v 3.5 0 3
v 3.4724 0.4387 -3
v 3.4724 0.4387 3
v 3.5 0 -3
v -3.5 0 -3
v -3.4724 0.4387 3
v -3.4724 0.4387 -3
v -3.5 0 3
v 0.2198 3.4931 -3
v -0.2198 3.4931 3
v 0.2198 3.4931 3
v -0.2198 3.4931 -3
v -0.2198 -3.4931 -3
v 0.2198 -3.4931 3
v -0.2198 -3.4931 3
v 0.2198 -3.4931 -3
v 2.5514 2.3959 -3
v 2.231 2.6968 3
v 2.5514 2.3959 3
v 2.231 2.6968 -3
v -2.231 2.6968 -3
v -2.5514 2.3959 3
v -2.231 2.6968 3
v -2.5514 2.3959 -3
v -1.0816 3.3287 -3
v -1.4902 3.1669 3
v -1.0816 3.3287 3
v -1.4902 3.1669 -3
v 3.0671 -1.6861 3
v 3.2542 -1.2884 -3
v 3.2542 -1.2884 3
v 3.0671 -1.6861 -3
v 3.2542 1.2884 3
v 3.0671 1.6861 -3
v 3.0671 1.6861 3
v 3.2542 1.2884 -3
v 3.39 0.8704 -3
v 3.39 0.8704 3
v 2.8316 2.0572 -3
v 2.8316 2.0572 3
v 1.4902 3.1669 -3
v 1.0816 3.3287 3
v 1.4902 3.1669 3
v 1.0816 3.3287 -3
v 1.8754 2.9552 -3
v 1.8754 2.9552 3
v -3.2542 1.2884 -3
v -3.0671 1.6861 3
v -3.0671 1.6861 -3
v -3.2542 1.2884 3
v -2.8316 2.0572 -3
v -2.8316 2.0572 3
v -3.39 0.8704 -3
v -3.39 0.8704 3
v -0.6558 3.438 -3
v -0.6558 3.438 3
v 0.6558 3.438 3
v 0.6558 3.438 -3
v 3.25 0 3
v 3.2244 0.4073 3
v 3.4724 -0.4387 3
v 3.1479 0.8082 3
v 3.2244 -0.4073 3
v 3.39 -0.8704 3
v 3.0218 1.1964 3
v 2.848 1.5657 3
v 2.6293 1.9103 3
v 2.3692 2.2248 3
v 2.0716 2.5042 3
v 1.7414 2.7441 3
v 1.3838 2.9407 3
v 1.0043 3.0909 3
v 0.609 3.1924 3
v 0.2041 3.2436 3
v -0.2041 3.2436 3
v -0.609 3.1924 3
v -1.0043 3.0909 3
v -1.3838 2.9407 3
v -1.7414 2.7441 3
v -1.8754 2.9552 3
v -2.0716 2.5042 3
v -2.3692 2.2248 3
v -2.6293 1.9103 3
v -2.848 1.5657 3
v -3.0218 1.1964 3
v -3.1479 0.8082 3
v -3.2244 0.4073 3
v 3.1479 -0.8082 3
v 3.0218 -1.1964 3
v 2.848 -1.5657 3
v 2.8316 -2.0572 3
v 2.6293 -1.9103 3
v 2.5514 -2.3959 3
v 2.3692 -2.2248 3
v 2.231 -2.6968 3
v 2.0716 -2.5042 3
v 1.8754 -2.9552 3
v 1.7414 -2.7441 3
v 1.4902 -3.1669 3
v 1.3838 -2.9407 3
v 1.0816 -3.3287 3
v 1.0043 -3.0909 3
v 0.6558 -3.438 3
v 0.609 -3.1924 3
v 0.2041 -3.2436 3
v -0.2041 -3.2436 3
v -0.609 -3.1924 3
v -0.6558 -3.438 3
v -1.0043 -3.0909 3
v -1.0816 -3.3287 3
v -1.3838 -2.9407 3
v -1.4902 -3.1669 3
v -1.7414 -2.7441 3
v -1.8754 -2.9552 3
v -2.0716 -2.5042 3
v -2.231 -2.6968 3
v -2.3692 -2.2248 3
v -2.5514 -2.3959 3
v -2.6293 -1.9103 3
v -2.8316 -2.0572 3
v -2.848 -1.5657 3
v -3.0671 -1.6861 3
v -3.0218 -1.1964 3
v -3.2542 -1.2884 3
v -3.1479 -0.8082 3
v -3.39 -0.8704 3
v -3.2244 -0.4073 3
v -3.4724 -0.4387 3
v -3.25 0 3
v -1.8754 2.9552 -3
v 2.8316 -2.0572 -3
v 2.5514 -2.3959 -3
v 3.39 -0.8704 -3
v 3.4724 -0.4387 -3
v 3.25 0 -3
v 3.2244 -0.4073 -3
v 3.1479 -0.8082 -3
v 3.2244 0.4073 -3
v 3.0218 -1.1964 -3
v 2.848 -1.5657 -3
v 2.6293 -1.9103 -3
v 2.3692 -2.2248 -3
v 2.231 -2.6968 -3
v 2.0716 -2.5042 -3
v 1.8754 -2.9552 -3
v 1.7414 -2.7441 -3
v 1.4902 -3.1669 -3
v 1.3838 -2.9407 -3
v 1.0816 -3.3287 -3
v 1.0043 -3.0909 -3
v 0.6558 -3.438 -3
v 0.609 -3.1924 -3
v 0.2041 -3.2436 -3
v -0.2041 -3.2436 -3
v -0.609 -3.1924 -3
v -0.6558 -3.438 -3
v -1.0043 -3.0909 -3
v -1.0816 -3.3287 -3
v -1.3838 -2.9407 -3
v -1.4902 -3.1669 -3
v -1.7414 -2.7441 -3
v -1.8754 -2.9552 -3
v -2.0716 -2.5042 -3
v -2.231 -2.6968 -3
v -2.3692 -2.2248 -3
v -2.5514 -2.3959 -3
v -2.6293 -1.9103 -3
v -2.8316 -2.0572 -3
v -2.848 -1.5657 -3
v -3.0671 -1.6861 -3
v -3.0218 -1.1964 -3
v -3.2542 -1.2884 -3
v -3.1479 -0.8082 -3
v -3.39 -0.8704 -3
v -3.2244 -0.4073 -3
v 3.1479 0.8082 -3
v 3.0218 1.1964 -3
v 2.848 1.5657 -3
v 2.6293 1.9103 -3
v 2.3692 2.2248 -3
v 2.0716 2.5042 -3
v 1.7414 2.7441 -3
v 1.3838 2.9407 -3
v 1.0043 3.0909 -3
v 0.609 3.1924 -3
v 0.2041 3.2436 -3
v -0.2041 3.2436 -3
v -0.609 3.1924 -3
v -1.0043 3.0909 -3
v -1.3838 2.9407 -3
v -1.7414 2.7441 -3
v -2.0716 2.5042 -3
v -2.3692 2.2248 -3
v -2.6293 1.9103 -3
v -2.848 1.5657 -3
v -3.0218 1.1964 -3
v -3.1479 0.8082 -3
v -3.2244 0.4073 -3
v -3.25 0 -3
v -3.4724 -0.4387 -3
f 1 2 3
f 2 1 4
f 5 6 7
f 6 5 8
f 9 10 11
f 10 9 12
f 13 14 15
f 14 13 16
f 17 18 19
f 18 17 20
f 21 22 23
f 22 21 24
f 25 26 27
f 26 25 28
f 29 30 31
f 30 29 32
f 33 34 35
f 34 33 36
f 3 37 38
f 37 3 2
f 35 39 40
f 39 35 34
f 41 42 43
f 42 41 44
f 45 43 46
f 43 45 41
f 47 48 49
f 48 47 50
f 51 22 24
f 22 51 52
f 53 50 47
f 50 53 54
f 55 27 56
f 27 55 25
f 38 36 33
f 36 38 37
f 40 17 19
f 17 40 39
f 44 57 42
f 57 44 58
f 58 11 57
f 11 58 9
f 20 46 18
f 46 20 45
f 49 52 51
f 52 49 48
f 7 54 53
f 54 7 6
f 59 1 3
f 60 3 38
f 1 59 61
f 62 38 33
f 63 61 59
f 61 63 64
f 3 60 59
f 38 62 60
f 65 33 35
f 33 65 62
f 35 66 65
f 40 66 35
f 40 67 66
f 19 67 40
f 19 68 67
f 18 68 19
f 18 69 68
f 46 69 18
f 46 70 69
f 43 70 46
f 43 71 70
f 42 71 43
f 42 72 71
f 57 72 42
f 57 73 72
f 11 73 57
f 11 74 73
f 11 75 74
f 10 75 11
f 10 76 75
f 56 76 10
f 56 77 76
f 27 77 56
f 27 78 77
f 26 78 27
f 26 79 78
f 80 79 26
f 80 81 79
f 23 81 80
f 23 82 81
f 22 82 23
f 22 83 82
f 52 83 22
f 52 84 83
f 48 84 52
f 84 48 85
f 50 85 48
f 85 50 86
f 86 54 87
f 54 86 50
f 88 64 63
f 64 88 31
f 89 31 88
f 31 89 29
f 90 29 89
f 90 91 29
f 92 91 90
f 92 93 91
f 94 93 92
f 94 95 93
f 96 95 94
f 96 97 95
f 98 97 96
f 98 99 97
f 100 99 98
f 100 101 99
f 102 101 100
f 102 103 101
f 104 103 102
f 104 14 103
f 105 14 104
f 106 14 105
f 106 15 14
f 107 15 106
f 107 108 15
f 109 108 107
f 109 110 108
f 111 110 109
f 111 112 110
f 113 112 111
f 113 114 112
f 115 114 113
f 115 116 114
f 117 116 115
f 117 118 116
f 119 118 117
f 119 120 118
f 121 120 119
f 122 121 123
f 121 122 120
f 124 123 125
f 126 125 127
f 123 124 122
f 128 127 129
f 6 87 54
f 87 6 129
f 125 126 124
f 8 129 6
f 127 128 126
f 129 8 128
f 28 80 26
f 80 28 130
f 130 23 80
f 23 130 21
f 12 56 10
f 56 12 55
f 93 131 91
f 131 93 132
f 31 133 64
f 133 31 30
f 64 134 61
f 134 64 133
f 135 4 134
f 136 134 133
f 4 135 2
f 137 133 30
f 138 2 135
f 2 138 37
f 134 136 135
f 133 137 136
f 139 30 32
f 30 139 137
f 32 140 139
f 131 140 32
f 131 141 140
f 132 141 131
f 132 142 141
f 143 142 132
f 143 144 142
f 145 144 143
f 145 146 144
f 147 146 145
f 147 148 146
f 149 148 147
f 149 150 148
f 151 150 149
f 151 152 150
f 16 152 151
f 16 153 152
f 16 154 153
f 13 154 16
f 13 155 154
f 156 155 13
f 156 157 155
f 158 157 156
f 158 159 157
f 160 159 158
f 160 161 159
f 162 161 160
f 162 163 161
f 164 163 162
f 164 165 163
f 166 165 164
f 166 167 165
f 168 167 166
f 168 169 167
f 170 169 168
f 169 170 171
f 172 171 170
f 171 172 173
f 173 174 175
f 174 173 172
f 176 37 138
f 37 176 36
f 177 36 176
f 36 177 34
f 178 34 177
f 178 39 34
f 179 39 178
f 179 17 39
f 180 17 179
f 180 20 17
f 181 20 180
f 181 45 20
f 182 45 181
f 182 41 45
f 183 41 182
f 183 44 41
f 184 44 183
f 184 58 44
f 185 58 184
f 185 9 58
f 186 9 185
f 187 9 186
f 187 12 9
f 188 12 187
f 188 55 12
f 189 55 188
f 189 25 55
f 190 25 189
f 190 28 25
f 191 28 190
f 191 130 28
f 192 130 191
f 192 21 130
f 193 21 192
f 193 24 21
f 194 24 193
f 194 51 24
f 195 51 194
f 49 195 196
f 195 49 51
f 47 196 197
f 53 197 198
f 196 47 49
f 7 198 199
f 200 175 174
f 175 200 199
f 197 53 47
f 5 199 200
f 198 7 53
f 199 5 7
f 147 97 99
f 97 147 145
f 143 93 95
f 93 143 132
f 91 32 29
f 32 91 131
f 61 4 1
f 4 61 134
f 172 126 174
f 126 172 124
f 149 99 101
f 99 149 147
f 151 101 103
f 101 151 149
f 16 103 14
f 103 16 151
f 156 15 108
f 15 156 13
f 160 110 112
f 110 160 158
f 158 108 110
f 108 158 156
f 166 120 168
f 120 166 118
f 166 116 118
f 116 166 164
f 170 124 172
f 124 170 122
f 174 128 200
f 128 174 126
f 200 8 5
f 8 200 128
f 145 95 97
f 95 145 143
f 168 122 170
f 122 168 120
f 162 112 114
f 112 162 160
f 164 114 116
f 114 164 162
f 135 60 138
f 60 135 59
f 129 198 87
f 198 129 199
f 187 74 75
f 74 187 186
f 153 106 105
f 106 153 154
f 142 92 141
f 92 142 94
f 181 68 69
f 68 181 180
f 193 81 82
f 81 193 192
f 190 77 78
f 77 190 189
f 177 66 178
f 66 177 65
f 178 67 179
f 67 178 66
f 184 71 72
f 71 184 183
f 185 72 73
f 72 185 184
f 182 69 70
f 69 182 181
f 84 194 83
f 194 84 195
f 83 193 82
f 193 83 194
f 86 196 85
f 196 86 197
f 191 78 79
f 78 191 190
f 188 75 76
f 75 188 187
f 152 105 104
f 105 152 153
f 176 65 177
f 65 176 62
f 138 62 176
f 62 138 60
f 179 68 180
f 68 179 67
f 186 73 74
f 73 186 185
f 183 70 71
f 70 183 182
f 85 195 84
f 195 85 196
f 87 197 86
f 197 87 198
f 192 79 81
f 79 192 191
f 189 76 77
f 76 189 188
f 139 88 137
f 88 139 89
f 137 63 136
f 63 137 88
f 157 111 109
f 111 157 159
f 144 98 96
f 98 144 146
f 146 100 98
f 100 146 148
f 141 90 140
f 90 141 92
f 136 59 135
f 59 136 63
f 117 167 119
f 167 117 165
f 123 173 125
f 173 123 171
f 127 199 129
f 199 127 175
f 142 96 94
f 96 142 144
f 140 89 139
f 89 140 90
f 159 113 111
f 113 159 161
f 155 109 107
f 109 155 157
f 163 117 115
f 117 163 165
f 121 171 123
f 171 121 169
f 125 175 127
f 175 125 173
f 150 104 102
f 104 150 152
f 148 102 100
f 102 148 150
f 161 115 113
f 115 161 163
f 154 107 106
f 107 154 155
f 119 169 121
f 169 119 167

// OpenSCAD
$fn = 50;


difference() {
	union() {
		translate(v = [0, 0, -3.0000000000]) {
			cylinder(h = 6, r = 3.5000000000);
		}
	}
	union() {
		translate(v = [0, 0, -100.0000000000]) {
			cylinder(h = 200, r = 3.2500000000);
		}
	}
}
